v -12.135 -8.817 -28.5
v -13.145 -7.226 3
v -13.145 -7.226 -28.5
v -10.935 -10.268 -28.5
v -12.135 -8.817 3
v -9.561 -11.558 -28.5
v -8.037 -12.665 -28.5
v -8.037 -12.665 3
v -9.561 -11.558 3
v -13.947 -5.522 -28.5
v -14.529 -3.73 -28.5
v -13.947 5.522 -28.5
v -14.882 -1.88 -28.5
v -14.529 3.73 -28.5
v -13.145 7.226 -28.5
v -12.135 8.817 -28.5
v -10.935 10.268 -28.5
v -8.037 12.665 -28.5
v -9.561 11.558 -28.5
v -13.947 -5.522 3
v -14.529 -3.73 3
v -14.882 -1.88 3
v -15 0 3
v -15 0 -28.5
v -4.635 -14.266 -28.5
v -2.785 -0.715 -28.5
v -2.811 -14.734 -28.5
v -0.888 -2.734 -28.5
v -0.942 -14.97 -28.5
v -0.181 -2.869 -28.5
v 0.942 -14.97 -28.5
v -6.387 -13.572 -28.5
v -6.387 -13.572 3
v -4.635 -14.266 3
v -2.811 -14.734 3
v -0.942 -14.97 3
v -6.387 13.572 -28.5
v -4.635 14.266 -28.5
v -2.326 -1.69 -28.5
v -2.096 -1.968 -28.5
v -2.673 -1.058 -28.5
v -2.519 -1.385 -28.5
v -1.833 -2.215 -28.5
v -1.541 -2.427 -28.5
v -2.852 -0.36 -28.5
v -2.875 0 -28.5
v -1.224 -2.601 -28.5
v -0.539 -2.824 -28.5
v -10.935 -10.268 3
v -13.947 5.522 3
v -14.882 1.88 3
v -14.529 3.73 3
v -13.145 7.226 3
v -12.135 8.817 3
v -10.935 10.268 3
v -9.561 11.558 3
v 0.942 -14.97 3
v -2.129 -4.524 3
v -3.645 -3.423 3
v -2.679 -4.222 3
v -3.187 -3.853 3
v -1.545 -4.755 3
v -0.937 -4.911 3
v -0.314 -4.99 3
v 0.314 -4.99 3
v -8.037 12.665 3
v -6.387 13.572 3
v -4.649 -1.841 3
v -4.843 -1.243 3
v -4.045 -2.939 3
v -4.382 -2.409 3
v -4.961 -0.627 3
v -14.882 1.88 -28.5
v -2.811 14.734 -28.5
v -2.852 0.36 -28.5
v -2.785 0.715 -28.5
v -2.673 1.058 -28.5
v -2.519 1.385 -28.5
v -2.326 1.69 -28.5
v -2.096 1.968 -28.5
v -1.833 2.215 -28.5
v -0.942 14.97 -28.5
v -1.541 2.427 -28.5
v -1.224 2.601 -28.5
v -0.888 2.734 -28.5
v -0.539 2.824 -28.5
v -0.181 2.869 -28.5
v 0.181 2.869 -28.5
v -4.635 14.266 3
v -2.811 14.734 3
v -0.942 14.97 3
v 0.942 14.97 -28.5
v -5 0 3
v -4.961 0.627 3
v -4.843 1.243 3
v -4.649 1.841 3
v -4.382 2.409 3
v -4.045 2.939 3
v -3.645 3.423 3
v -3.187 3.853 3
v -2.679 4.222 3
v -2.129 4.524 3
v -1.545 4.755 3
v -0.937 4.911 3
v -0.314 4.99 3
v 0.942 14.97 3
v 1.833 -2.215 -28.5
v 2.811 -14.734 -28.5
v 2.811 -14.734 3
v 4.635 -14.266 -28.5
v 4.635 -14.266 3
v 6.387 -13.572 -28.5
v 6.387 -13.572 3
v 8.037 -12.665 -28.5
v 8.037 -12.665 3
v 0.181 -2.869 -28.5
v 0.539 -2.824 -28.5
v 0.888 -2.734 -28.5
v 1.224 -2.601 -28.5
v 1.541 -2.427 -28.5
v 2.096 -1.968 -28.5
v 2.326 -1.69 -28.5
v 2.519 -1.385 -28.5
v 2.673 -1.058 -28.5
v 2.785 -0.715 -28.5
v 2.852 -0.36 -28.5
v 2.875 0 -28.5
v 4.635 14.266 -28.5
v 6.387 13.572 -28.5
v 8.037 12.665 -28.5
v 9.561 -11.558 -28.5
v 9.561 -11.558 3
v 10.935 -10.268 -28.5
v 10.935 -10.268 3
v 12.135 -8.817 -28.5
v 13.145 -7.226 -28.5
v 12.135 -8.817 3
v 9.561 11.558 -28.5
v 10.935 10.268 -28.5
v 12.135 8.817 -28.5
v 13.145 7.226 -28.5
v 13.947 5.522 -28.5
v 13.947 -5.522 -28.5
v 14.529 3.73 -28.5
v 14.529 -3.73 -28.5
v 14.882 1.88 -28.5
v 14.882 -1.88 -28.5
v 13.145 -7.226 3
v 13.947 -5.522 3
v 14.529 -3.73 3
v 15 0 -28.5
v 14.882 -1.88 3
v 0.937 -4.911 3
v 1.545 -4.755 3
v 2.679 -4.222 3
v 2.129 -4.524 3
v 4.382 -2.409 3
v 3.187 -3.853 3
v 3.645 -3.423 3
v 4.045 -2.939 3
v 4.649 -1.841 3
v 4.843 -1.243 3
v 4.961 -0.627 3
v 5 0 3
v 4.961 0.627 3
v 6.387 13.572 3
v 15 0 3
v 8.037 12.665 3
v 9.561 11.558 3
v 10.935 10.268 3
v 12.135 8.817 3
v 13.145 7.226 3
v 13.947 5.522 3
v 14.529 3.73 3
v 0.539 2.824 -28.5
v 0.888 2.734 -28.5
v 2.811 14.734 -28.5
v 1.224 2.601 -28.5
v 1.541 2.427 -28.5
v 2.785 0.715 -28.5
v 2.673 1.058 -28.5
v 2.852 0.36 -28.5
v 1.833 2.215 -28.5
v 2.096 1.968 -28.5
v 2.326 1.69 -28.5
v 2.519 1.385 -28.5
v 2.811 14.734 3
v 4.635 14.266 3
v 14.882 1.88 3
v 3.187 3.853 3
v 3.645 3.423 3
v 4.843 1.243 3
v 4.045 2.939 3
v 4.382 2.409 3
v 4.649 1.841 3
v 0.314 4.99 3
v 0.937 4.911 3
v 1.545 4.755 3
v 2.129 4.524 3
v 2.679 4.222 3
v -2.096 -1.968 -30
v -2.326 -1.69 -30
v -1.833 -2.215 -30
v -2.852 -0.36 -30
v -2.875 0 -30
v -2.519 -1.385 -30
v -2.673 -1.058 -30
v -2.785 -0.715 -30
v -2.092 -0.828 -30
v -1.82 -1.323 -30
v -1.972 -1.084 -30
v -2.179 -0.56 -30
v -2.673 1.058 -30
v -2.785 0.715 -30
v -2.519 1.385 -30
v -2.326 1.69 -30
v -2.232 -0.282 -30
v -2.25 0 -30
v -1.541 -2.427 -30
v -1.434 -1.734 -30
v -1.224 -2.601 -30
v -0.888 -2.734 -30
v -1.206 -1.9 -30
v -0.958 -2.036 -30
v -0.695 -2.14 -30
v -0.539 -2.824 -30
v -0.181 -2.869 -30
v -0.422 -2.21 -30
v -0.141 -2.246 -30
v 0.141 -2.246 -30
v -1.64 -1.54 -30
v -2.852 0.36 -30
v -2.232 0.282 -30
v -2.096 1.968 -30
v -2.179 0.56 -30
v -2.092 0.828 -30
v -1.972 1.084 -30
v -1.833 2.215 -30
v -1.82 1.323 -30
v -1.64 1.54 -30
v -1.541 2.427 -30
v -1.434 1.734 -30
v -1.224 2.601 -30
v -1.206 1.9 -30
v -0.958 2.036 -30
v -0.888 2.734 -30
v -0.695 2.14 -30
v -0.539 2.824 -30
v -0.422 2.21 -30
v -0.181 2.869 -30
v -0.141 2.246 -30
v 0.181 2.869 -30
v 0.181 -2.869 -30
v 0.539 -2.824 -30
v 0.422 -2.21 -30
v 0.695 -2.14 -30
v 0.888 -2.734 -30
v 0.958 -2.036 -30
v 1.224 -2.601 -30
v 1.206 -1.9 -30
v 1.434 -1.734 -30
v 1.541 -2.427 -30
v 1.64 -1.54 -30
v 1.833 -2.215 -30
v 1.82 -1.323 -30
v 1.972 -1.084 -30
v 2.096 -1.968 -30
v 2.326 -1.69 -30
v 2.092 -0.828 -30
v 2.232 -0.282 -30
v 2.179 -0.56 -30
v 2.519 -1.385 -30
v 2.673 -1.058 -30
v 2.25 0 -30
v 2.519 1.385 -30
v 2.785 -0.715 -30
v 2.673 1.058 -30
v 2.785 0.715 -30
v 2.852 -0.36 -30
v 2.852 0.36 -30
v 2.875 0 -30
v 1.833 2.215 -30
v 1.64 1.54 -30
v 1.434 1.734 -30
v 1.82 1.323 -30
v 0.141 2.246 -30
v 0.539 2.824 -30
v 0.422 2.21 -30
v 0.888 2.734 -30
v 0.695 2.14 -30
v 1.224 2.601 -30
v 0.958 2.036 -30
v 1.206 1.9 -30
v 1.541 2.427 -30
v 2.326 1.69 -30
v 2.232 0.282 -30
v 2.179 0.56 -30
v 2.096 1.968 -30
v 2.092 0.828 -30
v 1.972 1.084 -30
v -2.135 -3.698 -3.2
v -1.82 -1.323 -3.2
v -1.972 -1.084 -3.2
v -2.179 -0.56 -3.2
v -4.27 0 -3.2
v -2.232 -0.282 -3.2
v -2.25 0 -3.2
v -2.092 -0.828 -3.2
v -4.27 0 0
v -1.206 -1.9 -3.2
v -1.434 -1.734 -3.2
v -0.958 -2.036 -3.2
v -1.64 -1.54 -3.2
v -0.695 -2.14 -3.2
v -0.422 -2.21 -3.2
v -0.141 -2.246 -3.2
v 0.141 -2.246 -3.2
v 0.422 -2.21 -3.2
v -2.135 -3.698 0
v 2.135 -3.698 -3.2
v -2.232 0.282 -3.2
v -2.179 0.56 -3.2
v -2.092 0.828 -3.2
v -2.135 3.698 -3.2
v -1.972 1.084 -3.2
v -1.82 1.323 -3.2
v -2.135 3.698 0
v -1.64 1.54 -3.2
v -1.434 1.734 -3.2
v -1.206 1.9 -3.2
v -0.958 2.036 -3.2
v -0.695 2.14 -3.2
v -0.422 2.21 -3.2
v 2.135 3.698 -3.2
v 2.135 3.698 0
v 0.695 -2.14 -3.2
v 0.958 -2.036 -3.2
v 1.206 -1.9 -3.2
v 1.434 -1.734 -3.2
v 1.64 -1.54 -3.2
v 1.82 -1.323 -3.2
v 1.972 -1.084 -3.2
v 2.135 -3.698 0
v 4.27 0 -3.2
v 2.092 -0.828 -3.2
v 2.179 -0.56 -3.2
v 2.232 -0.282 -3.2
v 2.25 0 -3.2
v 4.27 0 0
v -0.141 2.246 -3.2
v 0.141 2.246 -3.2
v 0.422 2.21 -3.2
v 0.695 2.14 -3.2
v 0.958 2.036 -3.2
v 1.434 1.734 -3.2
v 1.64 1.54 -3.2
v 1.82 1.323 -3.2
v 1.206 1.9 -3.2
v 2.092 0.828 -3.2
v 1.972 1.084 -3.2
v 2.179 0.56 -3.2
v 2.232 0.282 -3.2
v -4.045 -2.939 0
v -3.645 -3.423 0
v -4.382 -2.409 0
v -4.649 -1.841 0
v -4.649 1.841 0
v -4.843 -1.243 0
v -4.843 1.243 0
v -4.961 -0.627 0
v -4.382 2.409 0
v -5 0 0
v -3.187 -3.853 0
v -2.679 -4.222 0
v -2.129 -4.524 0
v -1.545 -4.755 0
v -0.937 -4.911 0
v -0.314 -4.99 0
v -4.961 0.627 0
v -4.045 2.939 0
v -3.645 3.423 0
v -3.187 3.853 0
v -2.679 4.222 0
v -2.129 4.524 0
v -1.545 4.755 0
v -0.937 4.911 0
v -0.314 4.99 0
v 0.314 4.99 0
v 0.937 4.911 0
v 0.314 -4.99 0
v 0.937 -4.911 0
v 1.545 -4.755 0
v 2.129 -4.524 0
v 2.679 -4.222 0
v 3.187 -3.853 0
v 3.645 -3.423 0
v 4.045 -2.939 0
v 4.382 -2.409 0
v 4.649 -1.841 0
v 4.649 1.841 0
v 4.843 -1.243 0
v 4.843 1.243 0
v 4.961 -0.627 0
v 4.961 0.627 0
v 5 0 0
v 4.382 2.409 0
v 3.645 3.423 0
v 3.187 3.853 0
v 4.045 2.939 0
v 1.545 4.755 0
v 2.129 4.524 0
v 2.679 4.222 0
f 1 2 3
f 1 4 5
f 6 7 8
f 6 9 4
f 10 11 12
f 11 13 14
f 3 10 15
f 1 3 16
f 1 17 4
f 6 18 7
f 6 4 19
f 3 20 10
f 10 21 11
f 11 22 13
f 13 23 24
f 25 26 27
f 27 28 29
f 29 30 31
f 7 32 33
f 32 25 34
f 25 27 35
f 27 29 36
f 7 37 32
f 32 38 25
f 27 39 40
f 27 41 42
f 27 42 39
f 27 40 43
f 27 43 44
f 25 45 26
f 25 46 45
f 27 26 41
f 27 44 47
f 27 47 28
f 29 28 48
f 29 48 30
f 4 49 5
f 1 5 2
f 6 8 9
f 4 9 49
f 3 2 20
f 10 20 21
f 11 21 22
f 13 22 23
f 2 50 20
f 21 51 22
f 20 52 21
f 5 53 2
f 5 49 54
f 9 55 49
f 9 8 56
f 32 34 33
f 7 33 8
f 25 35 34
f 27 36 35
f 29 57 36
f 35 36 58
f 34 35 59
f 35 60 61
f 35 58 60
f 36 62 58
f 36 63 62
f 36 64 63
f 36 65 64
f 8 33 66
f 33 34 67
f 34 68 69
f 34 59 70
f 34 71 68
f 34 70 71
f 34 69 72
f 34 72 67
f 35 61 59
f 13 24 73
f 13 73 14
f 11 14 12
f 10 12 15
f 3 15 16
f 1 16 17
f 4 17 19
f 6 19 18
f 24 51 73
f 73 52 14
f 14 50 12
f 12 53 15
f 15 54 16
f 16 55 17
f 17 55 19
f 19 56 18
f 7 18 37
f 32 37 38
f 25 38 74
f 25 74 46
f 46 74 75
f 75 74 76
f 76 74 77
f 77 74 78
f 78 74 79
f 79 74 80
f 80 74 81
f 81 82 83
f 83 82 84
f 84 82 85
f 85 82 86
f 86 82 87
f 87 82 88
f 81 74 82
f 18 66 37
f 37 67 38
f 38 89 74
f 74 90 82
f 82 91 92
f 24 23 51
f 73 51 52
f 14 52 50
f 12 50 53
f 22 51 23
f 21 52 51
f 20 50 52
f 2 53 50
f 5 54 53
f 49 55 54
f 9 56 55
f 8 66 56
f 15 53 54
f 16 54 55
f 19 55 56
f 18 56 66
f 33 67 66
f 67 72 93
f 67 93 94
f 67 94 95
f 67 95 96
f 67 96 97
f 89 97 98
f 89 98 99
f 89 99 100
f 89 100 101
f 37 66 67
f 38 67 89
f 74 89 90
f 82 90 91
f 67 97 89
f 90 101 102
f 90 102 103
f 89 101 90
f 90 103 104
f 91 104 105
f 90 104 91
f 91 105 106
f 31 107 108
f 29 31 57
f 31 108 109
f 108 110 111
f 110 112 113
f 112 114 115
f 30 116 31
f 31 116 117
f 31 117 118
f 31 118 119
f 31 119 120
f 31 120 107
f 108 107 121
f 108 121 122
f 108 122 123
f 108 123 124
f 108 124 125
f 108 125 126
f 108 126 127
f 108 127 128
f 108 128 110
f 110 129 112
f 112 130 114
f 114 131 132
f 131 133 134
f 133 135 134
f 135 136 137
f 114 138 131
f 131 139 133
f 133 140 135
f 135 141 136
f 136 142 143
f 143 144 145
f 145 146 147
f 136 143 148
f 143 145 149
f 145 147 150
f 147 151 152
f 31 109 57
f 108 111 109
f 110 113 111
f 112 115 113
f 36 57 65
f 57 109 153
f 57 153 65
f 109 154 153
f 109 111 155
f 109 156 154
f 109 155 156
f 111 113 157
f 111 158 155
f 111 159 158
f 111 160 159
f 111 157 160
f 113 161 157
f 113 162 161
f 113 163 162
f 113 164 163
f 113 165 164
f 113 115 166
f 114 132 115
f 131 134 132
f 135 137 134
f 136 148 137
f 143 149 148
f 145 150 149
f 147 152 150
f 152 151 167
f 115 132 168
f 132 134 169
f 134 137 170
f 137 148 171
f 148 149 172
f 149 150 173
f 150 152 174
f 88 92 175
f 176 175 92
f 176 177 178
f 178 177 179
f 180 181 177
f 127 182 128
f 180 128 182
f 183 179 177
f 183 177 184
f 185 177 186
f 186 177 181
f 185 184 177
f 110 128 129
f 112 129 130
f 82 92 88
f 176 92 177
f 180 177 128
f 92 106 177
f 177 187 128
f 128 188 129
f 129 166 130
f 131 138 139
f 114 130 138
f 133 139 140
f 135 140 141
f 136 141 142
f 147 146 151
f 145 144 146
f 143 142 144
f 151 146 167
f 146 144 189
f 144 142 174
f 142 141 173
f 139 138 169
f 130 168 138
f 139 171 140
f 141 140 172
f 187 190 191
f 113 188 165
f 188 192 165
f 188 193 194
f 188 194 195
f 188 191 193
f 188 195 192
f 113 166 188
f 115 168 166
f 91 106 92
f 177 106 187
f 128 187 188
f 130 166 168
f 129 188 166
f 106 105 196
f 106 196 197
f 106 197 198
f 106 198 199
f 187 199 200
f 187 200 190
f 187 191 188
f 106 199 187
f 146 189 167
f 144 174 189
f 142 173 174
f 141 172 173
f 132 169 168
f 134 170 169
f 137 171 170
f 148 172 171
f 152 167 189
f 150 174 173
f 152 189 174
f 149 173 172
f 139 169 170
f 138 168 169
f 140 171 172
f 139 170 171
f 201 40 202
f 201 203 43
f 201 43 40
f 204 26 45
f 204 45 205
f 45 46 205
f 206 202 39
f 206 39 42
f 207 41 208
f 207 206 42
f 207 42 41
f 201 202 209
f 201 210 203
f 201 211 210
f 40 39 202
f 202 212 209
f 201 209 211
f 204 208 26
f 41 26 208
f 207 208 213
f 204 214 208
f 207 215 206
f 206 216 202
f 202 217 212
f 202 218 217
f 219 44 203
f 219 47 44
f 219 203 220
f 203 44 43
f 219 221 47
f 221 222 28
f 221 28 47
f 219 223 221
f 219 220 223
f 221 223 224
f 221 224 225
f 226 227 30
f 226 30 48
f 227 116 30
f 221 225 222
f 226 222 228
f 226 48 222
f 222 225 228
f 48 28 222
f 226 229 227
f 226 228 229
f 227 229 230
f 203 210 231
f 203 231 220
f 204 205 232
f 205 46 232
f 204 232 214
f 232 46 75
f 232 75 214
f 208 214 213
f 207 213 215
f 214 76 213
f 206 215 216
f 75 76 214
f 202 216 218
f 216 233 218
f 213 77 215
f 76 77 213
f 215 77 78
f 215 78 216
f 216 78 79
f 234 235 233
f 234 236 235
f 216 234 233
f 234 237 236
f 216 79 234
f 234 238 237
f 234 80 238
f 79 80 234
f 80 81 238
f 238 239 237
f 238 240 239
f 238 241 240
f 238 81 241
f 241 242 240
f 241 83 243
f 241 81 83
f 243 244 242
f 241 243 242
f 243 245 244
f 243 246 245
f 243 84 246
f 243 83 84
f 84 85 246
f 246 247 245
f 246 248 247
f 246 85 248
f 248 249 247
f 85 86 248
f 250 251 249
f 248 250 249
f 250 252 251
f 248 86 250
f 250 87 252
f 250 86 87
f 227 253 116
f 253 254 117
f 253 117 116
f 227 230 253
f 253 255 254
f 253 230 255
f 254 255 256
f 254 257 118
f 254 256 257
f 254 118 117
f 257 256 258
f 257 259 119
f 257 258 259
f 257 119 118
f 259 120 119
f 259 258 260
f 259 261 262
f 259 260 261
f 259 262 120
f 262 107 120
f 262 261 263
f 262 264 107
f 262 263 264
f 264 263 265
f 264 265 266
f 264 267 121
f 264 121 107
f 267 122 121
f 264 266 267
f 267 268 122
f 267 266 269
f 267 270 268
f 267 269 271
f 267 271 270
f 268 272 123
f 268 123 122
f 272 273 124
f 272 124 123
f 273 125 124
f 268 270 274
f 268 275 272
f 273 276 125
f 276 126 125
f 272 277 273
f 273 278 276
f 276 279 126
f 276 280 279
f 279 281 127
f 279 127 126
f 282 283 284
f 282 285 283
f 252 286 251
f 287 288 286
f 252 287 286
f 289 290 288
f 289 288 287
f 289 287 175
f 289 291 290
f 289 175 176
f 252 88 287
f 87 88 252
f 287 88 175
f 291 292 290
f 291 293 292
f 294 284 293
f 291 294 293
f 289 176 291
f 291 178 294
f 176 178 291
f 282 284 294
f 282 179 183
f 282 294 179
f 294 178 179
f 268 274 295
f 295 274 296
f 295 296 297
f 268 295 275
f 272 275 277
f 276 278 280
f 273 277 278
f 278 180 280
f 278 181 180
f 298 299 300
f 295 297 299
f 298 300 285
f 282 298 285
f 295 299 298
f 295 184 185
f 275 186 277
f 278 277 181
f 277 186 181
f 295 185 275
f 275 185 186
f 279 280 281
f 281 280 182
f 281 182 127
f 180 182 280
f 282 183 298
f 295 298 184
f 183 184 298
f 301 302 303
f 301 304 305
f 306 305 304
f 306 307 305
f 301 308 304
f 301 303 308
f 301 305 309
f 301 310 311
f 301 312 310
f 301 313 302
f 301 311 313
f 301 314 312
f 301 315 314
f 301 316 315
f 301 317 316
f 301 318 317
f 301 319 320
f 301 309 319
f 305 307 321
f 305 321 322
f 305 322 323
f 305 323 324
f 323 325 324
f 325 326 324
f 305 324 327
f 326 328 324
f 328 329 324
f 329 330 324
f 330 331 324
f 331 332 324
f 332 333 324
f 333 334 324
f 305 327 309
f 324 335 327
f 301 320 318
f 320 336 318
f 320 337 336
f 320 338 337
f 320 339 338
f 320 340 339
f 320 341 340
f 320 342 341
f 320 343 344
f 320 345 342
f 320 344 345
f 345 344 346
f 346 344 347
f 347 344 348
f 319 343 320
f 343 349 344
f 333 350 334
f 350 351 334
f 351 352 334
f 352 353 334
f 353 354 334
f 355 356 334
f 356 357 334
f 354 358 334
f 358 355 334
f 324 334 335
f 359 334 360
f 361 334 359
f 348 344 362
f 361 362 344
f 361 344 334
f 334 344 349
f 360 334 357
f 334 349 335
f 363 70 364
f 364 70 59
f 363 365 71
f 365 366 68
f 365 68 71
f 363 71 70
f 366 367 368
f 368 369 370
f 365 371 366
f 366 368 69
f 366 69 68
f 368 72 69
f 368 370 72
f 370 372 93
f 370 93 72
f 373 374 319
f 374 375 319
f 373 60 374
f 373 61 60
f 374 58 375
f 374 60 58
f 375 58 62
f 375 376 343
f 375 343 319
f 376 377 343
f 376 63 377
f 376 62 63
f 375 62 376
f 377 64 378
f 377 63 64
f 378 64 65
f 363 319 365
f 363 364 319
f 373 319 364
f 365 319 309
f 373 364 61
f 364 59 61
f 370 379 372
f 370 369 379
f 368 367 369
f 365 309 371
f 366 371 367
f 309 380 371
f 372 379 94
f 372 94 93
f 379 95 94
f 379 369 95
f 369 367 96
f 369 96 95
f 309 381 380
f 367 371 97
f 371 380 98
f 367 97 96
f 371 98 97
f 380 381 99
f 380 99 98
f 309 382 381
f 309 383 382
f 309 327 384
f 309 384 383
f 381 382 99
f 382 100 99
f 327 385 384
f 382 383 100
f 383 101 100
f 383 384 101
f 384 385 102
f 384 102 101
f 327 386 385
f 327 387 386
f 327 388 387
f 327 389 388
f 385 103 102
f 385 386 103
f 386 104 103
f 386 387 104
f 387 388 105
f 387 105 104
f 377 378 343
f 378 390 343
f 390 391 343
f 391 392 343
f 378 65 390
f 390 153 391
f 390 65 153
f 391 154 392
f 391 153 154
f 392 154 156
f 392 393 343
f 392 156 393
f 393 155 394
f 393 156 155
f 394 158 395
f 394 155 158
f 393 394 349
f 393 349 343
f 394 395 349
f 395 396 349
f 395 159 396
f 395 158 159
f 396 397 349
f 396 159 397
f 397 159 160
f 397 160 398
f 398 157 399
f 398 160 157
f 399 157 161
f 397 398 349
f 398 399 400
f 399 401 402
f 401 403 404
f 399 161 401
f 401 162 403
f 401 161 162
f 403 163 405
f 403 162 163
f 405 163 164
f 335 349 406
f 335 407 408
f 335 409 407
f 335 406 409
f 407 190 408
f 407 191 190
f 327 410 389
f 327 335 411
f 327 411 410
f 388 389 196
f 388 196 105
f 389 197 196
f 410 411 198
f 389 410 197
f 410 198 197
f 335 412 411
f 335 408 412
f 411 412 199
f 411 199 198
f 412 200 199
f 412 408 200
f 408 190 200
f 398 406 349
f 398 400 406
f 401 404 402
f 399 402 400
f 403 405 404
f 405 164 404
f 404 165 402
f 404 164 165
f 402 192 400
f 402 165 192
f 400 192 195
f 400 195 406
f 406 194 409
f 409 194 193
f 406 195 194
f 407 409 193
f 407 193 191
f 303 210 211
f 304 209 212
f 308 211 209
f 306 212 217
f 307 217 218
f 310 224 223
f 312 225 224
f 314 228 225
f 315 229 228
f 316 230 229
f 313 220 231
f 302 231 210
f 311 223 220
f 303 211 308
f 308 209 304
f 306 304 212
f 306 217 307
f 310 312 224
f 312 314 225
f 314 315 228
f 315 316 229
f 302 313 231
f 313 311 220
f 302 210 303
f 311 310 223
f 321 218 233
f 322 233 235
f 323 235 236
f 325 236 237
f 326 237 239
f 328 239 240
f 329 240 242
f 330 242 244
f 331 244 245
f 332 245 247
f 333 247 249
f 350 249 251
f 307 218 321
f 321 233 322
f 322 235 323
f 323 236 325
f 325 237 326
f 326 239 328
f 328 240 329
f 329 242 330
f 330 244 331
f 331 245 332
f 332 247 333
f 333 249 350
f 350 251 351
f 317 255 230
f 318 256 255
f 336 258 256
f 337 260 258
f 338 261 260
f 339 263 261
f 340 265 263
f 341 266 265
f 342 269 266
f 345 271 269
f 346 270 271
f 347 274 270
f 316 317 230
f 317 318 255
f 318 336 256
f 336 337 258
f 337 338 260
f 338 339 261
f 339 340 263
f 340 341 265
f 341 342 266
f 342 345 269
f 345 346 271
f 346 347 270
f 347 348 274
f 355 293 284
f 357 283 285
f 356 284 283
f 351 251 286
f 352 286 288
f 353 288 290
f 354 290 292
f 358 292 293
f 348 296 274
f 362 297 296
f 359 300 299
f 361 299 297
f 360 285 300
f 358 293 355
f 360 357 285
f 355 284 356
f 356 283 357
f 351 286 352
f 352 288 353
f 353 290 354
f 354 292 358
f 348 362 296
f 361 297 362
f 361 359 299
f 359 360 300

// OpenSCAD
$fn = 50;


difference() {
	union() {
		translate(v = [0, 0, -28.5000000000]) {
			cylinder(h = 31.5000000000, r = 15.0000000000);
		}
		#translate(v = [0, 0, -30.0000000000]) {
			cylinder(h = 30, r = 2.8750000000);
		}
	}
	union() {
		translate(v = [0, 0, 0]) {
			rotate(a = [0, 0, 0]) {
				difference() {
					union() {
						translate(v = [0, 0, -3.2000000000]) {
							linear_extrude(height = 3.2000000000) {
								polygon(points = [[4.2698000000, 0.0000000000], [2.1349000000, 3.6977552691], [-2.1349000000, 3.6977552691], [-4.2698000000, 0.0000000000], [-2.1349000000, -3.6977552691], [2.1349000000, -3.6977552691]]);
							}
						}
					}
					union();
				}
			}
		}
		#cylinder(h = 3, r = 5.0000000000);
		#translate(v = [0, 0, -100.0000000000]) {
			cylinder(h = 200, r = 2.2500000000);
		}
	}
}
